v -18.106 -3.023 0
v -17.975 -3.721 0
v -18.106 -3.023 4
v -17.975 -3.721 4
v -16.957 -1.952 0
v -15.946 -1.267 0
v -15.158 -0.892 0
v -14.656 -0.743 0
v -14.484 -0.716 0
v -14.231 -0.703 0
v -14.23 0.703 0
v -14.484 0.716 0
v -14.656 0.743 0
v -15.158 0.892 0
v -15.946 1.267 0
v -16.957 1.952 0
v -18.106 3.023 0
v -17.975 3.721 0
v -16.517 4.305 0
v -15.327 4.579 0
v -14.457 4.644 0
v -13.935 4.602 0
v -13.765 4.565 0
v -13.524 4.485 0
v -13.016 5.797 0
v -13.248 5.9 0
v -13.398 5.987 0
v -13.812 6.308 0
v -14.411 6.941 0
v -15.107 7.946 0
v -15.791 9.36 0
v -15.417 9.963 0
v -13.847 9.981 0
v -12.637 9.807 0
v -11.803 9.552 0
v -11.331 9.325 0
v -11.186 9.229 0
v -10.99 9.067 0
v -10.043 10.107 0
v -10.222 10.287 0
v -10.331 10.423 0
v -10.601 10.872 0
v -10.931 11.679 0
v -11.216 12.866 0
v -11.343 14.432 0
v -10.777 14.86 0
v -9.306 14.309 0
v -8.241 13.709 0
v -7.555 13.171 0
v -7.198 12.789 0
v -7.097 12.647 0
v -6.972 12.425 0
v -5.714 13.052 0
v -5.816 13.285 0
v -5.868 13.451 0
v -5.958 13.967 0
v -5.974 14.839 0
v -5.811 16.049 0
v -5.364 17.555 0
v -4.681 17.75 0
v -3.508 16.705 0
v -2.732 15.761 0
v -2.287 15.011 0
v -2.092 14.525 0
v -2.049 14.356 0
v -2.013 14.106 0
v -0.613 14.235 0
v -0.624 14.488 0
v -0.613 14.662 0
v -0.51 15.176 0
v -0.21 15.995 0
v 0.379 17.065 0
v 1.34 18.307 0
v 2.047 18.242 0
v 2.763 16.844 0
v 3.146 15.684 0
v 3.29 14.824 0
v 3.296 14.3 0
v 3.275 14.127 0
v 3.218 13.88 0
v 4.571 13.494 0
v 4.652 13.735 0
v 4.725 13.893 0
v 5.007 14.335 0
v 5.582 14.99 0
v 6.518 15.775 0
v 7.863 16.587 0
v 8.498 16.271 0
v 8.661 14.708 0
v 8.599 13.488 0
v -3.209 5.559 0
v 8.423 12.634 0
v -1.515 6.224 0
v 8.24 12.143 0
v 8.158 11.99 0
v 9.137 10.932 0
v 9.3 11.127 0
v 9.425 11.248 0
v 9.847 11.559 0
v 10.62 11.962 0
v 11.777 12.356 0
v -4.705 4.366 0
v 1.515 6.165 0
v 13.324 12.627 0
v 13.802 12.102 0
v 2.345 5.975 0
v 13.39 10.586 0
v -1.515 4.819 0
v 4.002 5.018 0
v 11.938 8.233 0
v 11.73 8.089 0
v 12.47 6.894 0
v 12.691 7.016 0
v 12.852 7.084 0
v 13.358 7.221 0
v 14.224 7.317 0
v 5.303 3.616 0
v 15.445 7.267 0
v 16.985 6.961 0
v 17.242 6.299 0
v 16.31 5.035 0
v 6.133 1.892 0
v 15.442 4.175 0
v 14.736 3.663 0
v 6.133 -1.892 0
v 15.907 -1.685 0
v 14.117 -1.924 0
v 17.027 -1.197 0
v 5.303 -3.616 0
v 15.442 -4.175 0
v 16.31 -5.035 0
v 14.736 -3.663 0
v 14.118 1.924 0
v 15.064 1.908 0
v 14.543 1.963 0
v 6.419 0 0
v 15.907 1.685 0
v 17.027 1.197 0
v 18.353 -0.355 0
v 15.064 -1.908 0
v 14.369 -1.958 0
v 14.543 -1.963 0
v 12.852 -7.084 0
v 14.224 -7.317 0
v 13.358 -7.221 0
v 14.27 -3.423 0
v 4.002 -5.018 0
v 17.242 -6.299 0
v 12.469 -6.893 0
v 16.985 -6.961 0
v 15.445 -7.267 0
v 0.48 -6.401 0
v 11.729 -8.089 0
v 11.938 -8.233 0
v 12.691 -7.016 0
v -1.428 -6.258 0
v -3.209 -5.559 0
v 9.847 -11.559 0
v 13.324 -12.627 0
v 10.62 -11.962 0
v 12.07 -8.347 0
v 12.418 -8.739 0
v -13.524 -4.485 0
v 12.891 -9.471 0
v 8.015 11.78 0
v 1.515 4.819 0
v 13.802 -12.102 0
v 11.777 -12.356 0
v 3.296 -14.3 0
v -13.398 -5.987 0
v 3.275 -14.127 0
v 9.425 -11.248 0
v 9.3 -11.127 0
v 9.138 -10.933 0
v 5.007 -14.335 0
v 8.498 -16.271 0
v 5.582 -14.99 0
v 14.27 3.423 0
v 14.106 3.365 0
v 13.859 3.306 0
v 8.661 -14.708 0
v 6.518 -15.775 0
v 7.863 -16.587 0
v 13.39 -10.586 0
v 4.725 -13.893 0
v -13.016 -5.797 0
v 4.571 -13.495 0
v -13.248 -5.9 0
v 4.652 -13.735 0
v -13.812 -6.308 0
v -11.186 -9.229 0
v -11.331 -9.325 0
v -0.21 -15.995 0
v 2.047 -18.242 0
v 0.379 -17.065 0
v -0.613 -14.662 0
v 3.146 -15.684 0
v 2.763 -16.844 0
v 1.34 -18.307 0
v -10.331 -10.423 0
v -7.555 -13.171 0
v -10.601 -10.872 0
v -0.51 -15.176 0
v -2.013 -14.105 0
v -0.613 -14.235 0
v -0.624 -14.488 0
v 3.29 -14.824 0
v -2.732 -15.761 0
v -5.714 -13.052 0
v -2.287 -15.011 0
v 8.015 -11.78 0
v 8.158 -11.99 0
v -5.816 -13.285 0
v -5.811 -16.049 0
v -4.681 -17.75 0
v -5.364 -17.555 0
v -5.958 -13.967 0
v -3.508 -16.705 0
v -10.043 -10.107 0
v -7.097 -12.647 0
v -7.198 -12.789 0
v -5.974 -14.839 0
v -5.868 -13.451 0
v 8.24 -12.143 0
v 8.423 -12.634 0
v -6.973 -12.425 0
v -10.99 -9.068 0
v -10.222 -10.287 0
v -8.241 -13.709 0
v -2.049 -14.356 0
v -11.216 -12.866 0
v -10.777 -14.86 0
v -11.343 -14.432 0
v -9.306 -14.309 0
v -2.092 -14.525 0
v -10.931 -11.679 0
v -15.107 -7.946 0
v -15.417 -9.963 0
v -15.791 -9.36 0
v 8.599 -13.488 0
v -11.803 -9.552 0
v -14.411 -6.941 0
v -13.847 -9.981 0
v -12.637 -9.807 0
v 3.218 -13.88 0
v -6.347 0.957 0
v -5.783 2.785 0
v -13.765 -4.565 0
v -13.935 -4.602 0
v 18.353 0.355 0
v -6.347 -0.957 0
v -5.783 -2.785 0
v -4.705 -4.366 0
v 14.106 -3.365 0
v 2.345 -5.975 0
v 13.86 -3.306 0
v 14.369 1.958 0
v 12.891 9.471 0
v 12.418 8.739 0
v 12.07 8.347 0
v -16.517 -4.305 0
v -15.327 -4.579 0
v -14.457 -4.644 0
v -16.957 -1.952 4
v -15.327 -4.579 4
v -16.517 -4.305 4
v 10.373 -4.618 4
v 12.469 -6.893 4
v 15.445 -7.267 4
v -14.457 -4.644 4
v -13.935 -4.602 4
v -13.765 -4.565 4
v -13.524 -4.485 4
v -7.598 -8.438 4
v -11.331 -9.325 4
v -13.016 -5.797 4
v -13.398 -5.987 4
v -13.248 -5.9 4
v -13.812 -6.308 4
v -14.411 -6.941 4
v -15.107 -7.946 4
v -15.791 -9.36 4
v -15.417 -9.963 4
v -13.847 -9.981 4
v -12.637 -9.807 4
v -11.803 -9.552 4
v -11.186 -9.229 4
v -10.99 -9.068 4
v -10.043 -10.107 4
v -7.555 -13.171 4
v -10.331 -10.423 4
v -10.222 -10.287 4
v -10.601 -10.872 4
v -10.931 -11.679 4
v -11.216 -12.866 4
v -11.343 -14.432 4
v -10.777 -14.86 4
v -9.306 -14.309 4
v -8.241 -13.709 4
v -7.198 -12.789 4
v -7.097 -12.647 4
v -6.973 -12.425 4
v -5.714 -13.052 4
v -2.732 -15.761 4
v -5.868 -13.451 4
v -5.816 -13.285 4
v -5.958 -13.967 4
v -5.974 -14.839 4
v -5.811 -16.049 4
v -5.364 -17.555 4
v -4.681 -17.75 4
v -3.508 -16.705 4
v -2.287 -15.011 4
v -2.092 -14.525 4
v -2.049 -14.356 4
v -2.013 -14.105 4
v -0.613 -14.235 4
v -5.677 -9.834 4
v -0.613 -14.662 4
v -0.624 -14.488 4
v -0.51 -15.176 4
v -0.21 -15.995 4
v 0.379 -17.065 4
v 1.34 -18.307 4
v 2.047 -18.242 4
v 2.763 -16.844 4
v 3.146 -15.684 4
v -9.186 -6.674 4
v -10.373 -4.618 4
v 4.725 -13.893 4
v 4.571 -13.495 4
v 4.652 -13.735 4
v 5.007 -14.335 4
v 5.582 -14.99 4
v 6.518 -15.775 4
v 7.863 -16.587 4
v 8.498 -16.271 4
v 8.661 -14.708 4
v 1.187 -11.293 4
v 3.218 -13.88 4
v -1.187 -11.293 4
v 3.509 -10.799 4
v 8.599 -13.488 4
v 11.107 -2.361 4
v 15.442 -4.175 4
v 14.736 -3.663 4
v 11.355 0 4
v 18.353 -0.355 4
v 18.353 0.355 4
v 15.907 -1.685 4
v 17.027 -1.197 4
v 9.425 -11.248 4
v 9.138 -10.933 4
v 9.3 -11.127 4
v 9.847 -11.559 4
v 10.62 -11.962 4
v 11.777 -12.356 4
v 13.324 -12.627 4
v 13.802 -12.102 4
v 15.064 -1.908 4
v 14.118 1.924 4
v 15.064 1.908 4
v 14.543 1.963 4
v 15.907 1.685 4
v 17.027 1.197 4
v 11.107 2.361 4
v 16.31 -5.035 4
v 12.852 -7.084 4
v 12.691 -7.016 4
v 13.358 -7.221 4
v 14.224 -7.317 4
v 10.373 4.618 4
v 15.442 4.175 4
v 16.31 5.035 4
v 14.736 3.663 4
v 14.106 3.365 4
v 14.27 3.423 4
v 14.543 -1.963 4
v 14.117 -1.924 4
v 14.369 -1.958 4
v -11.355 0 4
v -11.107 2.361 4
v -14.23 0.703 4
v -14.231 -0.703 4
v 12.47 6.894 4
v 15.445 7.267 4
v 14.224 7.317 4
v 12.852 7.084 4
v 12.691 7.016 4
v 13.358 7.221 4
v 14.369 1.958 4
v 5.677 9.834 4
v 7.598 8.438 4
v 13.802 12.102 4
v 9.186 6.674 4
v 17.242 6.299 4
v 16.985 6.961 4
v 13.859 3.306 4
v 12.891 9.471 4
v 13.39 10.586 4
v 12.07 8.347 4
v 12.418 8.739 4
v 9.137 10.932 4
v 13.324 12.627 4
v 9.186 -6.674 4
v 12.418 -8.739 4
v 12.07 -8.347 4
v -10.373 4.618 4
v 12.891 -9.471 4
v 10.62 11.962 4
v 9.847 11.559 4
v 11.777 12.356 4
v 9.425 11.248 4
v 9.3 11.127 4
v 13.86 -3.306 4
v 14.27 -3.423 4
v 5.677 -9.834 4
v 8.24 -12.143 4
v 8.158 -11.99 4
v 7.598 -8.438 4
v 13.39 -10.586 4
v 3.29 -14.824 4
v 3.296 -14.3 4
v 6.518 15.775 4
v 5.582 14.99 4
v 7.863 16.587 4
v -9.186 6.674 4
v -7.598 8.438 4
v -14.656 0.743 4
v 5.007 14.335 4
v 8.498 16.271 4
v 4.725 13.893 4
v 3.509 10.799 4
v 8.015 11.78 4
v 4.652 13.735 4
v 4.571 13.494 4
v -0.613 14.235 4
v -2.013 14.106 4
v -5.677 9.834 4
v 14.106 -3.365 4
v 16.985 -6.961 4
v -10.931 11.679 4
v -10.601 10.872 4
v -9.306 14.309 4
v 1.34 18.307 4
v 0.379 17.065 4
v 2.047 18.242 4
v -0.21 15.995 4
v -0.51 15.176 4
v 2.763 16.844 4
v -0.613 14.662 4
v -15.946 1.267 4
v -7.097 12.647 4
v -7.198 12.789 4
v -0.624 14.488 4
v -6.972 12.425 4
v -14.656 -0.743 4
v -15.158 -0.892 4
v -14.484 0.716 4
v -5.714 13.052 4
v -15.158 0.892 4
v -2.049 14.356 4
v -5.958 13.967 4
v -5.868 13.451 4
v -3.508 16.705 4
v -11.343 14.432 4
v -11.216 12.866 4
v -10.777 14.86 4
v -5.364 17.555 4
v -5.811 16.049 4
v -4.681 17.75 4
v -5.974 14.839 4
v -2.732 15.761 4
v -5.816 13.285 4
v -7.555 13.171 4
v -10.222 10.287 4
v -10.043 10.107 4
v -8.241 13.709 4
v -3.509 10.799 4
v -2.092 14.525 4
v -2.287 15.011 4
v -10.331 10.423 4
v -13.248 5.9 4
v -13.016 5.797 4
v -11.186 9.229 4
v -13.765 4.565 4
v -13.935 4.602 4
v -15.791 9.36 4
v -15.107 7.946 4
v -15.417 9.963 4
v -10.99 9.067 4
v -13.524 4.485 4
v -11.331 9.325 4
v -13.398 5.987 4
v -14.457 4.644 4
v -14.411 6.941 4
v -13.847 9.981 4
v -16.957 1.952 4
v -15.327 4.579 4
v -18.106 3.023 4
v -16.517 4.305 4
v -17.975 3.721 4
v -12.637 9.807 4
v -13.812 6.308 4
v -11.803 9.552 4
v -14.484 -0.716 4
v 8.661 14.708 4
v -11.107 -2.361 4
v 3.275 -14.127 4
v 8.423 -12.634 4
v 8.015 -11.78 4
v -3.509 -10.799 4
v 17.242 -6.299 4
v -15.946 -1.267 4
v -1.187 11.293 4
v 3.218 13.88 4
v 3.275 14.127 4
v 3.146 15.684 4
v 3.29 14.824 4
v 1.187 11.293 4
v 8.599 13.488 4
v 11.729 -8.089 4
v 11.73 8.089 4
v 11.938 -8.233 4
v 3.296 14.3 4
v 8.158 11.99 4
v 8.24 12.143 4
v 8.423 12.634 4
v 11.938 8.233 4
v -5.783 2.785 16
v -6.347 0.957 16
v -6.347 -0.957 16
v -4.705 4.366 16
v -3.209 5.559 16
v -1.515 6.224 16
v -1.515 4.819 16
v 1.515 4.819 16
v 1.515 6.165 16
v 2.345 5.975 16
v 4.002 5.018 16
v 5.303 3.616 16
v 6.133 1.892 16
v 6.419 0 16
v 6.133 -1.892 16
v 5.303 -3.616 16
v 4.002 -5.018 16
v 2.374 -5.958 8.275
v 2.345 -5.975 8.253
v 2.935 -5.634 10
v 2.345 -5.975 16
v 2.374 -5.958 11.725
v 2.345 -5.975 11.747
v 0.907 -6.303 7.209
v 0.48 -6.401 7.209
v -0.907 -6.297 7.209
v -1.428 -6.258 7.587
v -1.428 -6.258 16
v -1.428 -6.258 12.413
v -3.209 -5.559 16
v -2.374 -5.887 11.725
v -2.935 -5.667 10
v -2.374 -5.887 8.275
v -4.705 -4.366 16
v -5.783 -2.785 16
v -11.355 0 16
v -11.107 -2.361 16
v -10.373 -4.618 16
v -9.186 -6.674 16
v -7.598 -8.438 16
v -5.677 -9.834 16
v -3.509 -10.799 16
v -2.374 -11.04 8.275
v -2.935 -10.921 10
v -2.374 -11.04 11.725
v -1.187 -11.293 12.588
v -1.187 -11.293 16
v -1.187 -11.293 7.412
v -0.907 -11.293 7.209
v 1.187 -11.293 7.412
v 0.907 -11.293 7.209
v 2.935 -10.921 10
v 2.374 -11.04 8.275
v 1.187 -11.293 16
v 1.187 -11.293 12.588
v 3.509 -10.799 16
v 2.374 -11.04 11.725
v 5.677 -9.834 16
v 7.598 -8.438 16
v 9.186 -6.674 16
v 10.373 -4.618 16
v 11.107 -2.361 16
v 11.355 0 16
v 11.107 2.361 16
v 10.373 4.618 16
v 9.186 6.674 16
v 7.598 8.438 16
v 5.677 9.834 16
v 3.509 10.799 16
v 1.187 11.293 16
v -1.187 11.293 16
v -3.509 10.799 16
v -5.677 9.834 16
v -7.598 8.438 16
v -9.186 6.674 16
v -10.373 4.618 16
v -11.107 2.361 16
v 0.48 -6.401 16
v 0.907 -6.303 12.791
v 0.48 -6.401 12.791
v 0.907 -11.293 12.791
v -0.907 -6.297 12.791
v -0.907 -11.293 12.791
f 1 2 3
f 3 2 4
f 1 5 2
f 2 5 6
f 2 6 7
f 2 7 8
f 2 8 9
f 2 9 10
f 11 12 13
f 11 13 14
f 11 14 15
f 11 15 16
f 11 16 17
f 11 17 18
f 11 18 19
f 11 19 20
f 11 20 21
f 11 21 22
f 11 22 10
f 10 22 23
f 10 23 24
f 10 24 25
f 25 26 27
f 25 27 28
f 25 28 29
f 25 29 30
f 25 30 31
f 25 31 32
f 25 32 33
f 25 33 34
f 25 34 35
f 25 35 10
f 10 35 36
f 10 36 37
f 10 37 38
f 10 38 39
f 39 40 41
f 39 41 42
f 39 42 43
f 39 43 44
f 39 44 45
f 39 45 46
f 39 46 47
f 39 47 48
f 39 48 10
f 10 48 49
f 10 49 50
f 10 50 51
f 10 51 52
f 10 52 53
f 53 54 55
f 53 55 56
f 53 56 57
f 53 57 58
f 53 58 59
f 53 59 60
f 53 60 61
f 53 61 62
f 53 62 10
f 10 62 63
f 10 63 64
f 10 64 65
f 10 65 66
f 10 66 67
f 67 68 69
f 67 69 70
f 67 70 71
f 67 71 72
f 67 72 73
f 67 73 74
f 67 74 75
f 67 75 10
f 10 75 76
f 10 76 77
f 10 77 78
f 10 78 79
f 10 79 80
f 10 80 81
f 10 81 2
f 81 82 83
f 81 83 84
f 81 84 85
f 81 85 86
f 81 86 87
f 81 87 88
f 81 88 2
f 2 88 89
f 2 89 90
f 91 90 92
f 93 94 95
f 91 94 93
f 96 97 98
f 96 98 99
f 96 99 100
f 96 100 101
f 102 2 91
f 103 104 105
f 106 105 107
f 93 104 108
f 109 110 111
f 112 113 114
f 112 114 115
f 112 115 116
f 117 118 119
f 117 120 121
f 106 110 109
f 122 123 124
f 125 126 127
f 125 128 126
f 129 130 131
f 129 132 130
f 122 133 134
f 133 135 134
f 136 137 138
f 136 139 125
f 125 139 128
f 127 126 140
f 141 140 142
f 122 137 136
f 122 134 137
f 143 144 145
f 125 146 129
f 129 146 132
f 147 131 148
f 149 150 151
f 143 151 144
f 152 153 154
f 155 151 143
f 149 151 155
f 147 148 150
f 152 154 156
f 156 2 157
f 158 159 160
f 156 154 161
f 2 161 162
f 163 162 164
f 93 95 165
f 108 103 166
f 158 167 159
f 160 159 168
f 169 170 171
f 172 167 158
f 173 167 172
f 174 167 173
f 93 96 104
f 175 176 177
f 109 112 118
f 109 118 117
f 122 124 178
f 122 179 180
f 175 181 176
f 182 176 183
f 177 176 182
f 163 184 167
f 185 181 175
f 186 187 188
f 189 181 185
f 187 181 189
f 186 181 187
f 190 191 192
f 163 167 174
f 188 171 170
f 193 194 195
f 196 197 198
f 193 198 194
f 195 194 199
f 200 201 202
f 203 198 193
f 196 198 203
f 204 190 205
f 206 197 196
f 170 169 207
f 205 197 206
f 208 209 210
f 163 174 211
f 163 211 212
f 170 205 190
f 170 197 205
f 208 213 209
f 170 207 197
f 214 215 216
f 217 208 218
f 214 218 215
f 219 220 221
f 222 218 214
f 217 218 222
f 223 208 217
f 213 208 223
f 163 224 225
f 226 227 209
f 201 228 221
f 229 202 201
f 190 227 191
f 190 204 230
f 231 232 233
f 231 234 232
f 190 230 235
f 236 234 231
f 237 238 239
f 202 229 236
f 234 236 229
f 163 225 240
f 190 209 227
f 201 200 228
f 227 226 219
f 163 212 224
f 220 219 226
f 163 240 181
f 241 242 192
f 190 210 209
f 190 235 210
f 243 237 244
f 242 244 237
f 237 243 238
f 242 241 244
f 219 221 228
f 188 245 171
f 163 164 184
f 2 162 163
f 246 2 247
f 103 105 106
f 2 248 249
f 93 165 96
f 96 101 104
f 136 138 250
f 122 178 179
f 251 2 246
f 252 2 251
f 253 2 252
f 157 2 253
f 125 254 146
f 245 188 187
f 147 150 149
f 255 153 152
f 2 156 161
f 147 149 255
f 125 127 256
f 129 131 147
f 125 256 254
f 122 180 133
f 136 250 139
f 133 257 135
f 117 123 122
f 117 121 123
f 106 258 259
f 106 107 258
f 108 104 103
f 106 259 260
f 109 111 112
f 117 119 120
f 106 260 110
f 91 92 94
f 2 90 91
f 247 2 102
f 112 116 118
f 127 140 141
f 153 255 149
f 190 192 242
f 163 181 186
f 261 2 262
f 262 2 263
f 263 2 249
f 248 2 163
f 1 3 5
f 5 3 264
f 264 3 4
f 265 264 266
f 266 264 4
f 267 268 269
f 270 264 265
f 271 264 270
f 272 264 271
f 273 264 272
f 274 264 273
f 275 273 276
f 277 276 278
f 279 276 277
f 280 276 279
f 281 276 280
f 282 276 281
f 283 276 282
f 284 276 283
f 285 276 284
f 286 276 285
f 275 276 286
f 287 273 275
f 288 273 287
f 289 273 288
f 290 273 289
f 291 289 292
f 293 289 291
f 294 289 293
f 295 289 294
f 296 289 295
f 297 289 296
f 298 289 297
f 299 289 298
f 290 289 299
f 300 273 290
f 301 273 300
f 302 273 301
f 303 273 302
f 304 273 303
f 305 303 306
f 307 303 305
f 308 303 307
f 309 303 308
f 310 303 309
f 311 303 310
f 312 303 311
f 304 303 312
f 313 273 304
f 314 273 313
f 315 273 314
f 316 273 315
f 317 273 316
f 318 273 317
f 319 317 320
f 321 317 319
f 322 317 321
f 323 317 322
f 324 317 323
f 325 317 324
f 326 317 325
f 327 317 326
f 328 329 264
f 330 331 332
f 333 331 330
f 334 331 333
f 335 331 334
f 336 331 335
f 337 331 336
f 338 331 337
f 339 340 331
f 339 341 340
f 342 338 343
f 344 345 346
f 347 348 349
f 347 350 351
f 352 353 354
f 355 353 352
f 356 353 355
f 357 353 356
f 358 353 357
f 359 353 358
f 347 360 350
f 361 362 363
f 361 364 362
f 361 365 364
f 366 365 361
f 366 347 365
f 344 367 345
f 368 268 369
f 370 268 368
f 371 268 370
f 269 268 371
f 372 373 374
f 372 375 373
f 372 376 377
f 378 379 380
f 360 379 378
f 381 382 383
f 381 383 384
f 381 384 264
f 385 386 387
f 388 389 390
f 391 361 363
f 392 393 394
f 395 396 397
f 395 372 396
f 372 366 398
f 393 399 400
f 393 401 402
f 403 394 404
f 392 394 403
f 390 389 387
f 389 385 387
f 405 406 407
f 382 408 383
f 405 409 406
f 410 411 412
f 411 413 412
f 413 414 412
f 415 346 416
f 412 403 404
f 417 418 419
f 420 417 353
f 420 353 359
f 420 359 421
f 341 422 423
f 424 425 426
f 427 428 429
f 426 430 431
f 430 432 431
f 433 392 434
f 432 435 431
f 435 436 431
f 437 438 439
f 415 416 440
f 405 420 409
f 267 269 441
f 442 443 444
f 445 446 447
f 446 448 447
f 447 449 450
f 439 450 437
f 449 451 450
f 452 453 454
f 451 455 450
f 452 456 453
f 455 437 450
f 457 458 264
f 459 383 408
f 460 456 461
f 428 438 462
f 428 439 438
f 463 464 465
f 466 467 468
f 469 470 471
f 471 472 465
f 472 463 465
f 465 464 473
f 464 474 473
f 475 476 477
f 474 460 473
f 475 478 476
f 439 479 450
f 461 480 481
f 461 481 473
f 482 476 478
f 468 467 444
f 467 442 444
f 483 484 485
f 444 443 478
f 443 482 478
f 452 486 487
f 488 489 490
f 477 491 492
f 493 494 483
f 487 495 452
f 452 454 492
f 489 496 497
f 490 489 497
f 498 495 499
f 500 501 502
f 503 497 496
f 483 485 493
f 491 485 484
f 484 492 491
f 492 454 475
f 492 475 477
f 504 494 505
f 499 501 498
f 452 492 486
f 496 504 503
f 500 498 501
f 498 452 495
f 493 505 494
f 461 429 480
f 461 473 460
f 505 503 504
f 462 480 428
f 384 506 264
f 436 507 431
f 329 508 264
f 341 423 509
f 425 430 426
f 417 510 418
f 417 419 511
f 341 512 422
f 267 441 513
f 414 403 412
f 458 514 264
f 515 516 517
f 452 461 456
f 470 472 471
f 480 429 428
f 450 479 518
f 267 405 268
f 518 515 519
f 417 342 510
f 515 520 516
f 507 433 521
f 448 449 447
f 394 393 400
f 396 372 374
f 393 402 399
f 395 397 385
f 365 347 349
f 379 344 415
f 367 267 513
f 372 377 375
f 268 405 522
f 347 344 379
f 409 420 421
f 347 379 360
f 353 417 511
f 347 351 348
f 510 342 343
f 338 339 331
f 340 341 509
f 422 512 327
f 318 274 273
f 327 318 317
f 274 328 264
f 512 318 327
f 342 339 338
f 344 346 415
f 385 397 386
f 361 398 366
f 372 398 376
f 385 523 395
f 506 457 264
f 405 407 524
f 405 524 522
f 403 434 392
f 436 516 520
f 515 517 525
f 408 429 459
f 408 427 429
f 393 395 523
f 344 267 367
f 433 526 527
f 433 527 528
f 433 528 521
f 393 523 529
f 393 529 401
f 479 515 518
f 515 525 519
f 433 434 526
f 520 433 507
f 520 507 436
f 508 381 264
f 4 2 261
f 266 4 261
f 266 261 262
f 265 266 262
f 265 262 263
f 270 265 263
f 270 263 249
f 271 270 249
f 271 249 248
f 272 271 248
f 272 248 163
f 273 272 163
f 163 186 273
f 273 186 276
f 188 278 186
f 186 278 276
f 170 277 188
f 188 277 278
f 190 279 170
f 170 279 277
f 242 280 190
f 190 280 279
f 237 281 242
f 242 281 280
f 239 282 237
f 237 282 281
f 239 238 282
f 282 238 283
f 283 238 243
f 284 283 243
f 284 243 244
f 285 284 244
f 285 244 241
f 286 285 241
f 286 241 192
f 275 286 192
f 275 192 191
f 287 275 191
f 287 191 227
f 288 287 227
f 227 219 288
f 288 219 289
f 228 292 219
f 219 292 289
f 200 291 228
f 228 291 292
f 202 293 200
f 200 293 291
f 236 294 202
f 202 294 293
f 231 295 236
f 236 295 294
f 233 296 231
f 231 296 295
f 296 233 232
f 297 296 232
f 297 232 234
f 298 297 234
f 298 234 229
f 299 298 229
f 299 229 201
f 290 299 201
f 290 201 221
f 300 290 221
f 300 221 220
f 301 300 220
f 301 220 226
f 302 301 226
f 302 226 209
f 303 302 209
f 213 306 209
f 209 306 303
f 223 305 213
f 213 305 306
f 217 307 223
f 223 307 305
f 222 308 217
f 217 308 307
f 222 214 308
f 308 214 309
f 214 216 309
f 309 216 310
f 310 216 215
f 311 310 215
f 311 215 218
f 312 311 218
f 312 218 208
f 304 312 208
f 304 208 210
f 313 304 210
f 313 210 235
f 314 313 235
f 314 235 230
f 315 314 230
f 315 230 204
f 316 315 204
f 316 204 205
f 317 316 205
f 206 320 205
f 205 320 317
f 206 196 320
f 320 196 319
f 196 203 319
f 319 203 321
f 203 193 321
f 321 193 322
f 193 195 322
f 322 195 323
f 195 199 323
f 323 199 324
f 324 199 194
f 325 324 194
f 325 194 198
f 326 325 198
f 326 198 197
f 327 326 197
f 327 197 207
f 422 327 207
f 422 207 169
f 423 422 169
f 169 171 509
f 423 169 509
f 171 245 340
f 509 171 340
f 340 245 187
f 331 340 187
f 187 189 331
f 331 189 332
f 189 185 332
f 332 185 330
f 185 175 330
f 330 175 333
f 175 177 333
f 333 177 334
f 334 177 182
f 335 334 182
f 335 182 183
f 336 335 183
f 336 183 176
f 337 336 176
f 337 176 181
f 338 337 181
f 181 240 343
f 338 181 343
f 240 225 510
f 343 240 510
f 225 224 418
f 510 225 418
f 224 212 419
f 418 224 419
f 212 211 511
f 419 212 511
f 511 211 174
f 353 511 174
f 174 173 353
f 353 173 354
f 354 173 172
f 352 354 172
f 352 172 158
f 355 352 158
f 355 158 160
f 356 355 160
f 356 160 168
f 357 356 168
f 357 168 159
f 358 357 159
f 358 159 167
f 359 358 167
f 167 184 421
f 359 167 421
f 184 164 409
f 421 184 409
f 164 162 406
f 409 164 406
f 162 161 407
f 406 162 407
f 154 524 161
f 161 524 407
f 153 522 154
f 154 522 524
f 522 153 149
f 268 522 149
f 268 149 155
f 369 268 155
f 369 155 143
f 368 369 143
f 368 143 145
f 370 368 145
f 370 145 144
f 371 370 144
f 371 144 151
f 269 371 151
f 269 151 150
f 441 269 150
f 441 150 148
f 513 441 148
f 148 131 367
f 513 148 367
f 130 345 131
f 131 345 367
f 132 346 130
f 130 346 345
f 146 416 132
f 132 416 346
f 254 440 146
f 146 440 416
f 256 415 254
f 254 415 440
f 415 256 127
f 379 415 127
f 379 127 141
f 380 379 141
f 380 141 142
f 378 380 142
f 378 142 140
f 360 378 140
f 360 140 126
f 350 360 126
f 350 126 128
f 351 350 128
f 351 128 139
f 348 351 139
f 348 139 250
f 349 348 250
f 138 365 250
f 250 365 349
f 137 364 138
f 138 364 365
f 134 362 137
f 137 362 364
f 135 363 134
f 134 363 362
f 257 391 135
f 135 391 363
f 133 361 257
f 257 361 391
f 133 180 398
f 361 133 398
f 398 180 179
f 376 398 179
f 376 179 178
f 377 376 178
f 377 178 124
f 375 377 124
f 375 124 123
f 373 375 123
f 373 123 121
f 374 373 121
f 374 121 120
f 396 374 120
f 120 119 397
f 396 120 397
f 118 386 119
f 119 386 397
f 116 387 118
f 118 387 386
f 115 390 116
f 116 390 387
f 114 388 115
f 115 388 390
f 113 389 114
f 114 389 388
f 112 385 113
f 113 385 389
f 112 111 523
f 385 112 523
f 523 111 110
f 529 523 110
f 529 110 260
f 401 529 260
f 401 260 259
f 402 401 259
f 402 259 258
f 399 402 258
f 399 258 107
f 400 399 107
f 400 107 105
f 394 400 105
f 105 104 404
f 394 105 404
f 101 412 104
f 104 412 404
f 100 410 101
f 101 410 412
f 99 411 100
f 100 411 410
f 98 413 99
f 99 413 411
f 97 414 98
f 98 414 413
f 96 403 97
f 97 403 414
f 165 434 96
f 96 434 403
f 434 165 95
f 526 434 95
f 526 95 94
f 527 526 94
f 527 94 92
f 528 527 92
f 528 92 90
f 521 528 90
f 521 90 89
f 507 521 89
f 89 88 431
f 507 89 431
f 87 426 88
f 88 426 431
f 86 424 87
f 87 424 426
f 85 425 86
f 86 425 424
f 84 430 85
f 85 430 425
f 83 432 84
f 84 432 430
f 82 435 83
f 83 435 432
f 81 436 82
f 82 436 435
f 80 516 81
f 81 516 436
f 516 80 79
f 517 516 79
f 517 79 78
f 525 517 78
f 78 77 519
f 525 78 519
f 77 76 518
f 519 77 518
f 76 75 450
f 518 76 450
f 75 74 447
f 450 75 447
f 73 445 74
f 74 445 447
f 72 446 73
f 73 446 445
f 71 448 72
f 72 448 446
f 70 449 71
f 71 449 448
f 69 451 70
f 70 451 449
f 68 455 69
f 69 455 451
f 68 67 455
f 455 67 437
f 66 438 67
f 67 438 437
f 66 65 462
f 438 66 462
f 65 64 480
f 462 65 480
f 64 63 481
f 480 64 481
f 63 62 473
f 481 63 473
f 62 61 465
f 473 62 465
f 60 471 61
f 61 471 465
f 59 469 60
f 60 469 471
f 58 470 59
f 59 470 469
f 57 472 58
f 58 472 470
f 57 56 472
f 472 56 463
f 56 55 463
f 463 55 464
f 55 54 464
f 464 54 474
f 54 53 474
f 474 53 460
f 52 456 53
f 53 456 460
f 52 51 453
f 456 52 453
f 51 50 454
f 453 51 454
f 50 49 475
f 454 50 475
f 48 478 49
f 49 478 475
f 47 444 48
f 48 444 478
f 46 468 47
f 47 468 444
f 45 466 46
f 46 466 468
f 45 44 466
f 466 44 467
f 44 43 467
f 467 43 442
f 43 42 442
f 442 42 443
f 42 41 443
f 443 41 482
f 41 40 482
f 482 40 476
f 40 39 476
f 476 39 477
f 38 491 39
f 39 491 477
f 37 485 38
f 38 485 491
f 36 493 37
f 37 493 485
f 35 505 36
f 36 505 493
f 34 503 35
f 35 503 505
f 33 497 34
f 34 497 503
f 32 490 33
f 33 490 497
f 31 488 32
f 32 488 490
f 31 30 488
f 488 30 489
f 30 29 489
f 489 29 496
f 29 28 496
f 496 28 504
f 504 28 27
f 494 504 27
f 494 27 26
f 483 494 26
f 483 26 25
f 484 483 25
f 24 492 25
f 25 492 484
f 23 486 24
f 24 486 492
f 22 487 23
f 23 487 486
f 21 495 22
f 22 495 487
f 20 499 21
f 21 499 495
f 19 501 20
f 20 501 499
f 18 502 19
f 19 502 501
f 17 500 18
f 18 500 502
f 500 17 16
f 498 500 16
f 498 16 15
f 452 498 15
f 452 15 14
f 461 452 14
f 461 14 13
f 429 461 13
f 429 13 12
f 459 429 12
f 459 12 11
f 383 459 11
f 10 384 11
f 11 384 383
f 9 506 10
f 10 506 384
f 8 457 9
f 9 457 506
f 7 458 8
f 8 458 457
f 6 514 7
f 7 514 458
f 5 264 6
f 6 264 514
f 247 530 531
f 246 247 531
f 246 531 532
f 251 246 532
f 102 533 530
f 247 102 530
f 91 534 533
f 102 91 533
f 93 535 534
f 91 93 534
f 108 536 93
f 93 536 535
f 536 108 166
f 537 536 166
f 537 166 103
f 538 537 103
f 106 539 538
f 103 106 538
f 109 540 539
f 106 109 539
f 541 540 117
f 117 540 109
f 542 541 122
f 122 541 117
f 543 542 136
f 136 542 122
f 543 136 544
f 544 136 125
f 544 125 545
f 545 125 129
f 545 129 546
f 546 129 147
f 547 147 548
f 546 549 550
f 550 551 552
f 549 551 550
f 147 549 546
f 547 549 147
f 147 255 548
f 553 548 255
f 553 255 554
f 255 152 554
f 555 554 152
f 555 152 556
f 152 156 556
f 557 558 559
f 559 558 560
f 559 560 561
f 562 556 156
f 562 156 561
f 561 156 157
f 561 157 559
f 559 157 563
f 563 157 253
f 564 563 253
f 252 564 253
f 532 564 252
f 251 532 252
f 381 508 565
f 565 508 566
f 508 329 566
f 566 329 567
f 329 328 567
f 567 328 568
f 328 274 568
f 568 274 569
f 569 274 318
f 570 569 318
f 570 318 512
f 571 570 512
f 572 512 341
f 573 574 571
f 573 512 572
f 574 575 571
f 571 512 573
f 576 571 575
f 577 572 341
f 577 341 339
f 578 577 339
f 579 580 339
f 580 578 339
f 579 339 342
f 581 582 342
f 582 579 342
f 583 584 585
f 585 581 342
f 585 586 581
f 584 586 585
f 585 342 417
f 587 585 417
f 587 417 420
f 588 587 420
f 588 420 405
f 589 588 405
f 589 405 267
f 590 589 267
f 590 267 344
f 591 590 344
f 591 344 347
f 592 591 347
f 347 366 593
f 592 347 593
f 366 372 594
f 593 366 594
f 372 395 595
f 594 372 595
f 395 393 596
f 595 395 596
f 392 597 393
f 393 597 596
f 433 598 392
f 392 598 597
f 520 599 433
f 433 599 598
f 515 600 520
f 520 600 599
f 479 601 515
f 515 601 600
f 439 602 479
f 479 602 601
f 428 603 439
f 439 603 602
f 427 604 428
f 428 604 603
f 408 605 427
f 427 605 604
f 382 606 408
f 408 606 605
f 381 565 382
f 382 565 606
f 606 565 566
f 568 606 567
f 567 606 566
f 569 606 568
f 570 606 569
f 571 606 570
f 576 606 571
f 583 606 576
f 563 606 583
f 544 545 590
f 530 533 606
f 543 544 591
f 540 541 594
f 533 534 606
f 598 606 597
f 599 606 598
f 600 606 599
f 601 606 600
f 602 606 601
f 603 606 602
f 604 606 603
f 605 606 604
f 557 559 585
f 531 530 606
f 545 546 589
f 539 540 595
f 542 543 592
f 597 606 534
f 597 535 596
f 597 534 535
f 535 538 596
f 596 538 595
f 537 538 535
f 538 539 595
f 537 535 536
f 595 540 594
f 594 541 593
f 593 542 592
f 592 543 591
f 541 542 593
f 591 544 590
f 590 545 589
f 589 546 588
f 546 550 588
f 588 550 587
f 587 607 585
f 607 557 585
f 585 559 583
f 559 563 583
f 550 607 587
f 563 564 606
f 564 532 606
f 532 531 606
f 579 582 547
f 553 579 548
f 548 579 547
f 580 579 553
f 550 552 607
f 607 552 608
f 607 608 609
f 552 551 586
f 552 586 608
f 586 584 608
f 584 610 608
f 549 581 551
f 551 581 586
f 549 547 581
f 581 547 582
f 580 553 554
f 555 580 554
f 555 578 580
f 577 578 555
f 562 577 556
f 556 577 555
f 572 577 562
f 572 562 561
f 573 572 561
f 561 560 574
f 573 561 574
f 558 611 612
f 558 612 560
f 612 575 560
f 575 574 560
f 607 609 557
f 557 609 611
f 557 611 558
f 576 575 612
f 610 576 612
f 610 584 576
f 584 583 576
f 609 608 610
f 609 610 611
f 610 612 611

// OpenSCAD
// file: ../resolution.scad
//////////////////////////////////////////////////////////////////////
// LibFile: resolution.scad
//   Shared Forge geometry-resolution tokens and OpenSCAD tessellation policy.
//////////////////////////////////////////////////////////////////////


// Function: FG_RES_LOW()
// Synopsis: Returns the fast interactive geometry-resolution token.
function FG_RES_LOW() = "low";


// Function: FG_RES_HIGH()
// Synopsis: Returns the normal design/render geometry-resolution token.
function FG_RES_HIGH() = "high";


// Function: FG_RES_EXPORT()
// Synopsis: Returns the production mesh geometry-resolution token.
function FG_RES_EXPORT() = "export";


// Module: fg_res_apply()
// Synopsis: Applies Forge's OpenSCAD tessellation policy to child geometry.
// Description:
//   Callers select semantic geometry resolution. Forge owns the matching
//   OpenSCAD $fa/$fs settings. $fn is reset to automatic mode so a caller's
//   global fixed segment count cannot override this policy.
// Arguments:
//   resolution = FG_RES_LOW(), FG_RES_HIGH() or FG_RES_EXPORT().
module fg_res_apply(
    resolution = FG_RES_HIGH()
) {
    assert(
        _fg_res_is_valid(resolution),
        str("Unsupported Forge resolution: ", resolution)
    );

    let(
        $fn = 0,
        $fa = _fg_res_fa_deg(resolution),
        $fs = _fg_res_fs_mm(resolution)
    )
        children();
}


function _fg_res_is_valid(resolution) =
    resolution == FG_RES_LOW()
    || resolution == FG_RES_HIGH()
    || resolution == FG_RES_EXPORT();


function _fg_res_fa_deg(resolution) =
    resolution == FG_RES_LOW()
        ? 12
        : resolution == FG_RES_HIGH()
            ? 6
            : 3;


function _fg_res_fs_mm(resolution) =
    resolution == FG_RES_LOW()
        ? 2
        : resolution == FG_RES_HIGH()
            ? 1
            : 0.5;
// file: gear_dimensions.scad
/* Copyright 2013 CreateThis.com
 * All Rights Reserved
 */

// Outer diameter = 34.78mm
// Bore Diameter = 12.71
// Pd = (N+2) / OD
// where Pd is Diametral Pitch
// and N is number of teeth

keyed_shaft_scale_factor = 1.01; // 1% for shaft keyed gear
mre_scale_factor = 1.03; // 3% interference fit
mre_magnet_scale_factor = 1.12; // 12% easy insert but needs superglue to stay; use 10% for dangerously snug.

// Output Shaft Gear
outer_diameter = 34.78;
bore_diameter = 12.71;
hub_diameter = 22.71; // 6mm thick
number_of_teeth = 17;
key_depth = 1.60;
key_width = 3.03;
key_thickness = 16; // z
gear_thickness = 4;
//rim_thickness = 4; // unused
screw_hole_diameter = 5.87; // unknown screw type, larger than a #10, smaller than 1/4", #11 maybe?

// 608ZZG Skate Bearing
skate_bearing_thickness = 7;

// MRE Gear
mre_gear_shaft_diameter = 7.95; // 5/16" 608ZZG Skate Bearing Bore Diameter
mre_gear_shaft_length = 11;
mre_gear_offset = 1.86; // This is the gap between the gear and the motor body
mre_snap_ring_radius = 0.1;

// MRE magnet
mre_magnet_diameter = 6.10;
mre_magnet_thickness = 3.19;

// Calculated
diametral_pitch = (number_of_teeth + 1) / outer_diameter;
mre_gear_shaft_radius = mre_gear_shaft_diameter / 2;
mre_gear_shaft_radius_scaled = mre_gear_shaft_radius * mre_scale_factor;
mre_magnet_radius = mre_magnet_diameter / 2;
mre_magnet_radius_scaled = mre_magnet_radius * mre_magnet_scale_factor;
key_depth_scaled = key_depth * keyed_shaft_scale_factor;
bore_diameter_scaled = bore_diameter * keyed_shaft_scale_factor;
mre_shaft_length_total = mre_gear_shaft_length + mre_gear_offset + gear_thickness;
screw_hole_radius = screw_hole_diameter / 2;
// main file
/* Copyright 2013 CreateThis.com
 * All Rights Reserved
 */

use <MCAD/involute_gears.scad>
include <gear_dimensions.scad>
include <../resolution.scad>

difference () {
  union () {
    // Key
    translate(v=[0,bore_diameter_scaled/2 - key_depth/2,key_thickness/2]) {
      cube(size=[key_width,key_depth,key_thickness],center=true);
    }

    // Gear
    gear (
      diametral_pitch=diametral_pitch,
      number_of_teeth=number_of_teeth,
      bore_diameter=bore_diameter_scaled,
      hub_diameter=hub_diameter,
      hub_thickness=key_thickness,
      gear_thickness=gear_thickness,
      rim_thickness=gear_thickness
    );
  }
  translate (v=[0,0,key_thickness - (key_thickness - gear_thickness) / 2]) {
    rotate(a=90,v=[1,0,0]) {
      cylinder(r=screw_hole_radius, h=outer_diameter);
    }
  }
}
